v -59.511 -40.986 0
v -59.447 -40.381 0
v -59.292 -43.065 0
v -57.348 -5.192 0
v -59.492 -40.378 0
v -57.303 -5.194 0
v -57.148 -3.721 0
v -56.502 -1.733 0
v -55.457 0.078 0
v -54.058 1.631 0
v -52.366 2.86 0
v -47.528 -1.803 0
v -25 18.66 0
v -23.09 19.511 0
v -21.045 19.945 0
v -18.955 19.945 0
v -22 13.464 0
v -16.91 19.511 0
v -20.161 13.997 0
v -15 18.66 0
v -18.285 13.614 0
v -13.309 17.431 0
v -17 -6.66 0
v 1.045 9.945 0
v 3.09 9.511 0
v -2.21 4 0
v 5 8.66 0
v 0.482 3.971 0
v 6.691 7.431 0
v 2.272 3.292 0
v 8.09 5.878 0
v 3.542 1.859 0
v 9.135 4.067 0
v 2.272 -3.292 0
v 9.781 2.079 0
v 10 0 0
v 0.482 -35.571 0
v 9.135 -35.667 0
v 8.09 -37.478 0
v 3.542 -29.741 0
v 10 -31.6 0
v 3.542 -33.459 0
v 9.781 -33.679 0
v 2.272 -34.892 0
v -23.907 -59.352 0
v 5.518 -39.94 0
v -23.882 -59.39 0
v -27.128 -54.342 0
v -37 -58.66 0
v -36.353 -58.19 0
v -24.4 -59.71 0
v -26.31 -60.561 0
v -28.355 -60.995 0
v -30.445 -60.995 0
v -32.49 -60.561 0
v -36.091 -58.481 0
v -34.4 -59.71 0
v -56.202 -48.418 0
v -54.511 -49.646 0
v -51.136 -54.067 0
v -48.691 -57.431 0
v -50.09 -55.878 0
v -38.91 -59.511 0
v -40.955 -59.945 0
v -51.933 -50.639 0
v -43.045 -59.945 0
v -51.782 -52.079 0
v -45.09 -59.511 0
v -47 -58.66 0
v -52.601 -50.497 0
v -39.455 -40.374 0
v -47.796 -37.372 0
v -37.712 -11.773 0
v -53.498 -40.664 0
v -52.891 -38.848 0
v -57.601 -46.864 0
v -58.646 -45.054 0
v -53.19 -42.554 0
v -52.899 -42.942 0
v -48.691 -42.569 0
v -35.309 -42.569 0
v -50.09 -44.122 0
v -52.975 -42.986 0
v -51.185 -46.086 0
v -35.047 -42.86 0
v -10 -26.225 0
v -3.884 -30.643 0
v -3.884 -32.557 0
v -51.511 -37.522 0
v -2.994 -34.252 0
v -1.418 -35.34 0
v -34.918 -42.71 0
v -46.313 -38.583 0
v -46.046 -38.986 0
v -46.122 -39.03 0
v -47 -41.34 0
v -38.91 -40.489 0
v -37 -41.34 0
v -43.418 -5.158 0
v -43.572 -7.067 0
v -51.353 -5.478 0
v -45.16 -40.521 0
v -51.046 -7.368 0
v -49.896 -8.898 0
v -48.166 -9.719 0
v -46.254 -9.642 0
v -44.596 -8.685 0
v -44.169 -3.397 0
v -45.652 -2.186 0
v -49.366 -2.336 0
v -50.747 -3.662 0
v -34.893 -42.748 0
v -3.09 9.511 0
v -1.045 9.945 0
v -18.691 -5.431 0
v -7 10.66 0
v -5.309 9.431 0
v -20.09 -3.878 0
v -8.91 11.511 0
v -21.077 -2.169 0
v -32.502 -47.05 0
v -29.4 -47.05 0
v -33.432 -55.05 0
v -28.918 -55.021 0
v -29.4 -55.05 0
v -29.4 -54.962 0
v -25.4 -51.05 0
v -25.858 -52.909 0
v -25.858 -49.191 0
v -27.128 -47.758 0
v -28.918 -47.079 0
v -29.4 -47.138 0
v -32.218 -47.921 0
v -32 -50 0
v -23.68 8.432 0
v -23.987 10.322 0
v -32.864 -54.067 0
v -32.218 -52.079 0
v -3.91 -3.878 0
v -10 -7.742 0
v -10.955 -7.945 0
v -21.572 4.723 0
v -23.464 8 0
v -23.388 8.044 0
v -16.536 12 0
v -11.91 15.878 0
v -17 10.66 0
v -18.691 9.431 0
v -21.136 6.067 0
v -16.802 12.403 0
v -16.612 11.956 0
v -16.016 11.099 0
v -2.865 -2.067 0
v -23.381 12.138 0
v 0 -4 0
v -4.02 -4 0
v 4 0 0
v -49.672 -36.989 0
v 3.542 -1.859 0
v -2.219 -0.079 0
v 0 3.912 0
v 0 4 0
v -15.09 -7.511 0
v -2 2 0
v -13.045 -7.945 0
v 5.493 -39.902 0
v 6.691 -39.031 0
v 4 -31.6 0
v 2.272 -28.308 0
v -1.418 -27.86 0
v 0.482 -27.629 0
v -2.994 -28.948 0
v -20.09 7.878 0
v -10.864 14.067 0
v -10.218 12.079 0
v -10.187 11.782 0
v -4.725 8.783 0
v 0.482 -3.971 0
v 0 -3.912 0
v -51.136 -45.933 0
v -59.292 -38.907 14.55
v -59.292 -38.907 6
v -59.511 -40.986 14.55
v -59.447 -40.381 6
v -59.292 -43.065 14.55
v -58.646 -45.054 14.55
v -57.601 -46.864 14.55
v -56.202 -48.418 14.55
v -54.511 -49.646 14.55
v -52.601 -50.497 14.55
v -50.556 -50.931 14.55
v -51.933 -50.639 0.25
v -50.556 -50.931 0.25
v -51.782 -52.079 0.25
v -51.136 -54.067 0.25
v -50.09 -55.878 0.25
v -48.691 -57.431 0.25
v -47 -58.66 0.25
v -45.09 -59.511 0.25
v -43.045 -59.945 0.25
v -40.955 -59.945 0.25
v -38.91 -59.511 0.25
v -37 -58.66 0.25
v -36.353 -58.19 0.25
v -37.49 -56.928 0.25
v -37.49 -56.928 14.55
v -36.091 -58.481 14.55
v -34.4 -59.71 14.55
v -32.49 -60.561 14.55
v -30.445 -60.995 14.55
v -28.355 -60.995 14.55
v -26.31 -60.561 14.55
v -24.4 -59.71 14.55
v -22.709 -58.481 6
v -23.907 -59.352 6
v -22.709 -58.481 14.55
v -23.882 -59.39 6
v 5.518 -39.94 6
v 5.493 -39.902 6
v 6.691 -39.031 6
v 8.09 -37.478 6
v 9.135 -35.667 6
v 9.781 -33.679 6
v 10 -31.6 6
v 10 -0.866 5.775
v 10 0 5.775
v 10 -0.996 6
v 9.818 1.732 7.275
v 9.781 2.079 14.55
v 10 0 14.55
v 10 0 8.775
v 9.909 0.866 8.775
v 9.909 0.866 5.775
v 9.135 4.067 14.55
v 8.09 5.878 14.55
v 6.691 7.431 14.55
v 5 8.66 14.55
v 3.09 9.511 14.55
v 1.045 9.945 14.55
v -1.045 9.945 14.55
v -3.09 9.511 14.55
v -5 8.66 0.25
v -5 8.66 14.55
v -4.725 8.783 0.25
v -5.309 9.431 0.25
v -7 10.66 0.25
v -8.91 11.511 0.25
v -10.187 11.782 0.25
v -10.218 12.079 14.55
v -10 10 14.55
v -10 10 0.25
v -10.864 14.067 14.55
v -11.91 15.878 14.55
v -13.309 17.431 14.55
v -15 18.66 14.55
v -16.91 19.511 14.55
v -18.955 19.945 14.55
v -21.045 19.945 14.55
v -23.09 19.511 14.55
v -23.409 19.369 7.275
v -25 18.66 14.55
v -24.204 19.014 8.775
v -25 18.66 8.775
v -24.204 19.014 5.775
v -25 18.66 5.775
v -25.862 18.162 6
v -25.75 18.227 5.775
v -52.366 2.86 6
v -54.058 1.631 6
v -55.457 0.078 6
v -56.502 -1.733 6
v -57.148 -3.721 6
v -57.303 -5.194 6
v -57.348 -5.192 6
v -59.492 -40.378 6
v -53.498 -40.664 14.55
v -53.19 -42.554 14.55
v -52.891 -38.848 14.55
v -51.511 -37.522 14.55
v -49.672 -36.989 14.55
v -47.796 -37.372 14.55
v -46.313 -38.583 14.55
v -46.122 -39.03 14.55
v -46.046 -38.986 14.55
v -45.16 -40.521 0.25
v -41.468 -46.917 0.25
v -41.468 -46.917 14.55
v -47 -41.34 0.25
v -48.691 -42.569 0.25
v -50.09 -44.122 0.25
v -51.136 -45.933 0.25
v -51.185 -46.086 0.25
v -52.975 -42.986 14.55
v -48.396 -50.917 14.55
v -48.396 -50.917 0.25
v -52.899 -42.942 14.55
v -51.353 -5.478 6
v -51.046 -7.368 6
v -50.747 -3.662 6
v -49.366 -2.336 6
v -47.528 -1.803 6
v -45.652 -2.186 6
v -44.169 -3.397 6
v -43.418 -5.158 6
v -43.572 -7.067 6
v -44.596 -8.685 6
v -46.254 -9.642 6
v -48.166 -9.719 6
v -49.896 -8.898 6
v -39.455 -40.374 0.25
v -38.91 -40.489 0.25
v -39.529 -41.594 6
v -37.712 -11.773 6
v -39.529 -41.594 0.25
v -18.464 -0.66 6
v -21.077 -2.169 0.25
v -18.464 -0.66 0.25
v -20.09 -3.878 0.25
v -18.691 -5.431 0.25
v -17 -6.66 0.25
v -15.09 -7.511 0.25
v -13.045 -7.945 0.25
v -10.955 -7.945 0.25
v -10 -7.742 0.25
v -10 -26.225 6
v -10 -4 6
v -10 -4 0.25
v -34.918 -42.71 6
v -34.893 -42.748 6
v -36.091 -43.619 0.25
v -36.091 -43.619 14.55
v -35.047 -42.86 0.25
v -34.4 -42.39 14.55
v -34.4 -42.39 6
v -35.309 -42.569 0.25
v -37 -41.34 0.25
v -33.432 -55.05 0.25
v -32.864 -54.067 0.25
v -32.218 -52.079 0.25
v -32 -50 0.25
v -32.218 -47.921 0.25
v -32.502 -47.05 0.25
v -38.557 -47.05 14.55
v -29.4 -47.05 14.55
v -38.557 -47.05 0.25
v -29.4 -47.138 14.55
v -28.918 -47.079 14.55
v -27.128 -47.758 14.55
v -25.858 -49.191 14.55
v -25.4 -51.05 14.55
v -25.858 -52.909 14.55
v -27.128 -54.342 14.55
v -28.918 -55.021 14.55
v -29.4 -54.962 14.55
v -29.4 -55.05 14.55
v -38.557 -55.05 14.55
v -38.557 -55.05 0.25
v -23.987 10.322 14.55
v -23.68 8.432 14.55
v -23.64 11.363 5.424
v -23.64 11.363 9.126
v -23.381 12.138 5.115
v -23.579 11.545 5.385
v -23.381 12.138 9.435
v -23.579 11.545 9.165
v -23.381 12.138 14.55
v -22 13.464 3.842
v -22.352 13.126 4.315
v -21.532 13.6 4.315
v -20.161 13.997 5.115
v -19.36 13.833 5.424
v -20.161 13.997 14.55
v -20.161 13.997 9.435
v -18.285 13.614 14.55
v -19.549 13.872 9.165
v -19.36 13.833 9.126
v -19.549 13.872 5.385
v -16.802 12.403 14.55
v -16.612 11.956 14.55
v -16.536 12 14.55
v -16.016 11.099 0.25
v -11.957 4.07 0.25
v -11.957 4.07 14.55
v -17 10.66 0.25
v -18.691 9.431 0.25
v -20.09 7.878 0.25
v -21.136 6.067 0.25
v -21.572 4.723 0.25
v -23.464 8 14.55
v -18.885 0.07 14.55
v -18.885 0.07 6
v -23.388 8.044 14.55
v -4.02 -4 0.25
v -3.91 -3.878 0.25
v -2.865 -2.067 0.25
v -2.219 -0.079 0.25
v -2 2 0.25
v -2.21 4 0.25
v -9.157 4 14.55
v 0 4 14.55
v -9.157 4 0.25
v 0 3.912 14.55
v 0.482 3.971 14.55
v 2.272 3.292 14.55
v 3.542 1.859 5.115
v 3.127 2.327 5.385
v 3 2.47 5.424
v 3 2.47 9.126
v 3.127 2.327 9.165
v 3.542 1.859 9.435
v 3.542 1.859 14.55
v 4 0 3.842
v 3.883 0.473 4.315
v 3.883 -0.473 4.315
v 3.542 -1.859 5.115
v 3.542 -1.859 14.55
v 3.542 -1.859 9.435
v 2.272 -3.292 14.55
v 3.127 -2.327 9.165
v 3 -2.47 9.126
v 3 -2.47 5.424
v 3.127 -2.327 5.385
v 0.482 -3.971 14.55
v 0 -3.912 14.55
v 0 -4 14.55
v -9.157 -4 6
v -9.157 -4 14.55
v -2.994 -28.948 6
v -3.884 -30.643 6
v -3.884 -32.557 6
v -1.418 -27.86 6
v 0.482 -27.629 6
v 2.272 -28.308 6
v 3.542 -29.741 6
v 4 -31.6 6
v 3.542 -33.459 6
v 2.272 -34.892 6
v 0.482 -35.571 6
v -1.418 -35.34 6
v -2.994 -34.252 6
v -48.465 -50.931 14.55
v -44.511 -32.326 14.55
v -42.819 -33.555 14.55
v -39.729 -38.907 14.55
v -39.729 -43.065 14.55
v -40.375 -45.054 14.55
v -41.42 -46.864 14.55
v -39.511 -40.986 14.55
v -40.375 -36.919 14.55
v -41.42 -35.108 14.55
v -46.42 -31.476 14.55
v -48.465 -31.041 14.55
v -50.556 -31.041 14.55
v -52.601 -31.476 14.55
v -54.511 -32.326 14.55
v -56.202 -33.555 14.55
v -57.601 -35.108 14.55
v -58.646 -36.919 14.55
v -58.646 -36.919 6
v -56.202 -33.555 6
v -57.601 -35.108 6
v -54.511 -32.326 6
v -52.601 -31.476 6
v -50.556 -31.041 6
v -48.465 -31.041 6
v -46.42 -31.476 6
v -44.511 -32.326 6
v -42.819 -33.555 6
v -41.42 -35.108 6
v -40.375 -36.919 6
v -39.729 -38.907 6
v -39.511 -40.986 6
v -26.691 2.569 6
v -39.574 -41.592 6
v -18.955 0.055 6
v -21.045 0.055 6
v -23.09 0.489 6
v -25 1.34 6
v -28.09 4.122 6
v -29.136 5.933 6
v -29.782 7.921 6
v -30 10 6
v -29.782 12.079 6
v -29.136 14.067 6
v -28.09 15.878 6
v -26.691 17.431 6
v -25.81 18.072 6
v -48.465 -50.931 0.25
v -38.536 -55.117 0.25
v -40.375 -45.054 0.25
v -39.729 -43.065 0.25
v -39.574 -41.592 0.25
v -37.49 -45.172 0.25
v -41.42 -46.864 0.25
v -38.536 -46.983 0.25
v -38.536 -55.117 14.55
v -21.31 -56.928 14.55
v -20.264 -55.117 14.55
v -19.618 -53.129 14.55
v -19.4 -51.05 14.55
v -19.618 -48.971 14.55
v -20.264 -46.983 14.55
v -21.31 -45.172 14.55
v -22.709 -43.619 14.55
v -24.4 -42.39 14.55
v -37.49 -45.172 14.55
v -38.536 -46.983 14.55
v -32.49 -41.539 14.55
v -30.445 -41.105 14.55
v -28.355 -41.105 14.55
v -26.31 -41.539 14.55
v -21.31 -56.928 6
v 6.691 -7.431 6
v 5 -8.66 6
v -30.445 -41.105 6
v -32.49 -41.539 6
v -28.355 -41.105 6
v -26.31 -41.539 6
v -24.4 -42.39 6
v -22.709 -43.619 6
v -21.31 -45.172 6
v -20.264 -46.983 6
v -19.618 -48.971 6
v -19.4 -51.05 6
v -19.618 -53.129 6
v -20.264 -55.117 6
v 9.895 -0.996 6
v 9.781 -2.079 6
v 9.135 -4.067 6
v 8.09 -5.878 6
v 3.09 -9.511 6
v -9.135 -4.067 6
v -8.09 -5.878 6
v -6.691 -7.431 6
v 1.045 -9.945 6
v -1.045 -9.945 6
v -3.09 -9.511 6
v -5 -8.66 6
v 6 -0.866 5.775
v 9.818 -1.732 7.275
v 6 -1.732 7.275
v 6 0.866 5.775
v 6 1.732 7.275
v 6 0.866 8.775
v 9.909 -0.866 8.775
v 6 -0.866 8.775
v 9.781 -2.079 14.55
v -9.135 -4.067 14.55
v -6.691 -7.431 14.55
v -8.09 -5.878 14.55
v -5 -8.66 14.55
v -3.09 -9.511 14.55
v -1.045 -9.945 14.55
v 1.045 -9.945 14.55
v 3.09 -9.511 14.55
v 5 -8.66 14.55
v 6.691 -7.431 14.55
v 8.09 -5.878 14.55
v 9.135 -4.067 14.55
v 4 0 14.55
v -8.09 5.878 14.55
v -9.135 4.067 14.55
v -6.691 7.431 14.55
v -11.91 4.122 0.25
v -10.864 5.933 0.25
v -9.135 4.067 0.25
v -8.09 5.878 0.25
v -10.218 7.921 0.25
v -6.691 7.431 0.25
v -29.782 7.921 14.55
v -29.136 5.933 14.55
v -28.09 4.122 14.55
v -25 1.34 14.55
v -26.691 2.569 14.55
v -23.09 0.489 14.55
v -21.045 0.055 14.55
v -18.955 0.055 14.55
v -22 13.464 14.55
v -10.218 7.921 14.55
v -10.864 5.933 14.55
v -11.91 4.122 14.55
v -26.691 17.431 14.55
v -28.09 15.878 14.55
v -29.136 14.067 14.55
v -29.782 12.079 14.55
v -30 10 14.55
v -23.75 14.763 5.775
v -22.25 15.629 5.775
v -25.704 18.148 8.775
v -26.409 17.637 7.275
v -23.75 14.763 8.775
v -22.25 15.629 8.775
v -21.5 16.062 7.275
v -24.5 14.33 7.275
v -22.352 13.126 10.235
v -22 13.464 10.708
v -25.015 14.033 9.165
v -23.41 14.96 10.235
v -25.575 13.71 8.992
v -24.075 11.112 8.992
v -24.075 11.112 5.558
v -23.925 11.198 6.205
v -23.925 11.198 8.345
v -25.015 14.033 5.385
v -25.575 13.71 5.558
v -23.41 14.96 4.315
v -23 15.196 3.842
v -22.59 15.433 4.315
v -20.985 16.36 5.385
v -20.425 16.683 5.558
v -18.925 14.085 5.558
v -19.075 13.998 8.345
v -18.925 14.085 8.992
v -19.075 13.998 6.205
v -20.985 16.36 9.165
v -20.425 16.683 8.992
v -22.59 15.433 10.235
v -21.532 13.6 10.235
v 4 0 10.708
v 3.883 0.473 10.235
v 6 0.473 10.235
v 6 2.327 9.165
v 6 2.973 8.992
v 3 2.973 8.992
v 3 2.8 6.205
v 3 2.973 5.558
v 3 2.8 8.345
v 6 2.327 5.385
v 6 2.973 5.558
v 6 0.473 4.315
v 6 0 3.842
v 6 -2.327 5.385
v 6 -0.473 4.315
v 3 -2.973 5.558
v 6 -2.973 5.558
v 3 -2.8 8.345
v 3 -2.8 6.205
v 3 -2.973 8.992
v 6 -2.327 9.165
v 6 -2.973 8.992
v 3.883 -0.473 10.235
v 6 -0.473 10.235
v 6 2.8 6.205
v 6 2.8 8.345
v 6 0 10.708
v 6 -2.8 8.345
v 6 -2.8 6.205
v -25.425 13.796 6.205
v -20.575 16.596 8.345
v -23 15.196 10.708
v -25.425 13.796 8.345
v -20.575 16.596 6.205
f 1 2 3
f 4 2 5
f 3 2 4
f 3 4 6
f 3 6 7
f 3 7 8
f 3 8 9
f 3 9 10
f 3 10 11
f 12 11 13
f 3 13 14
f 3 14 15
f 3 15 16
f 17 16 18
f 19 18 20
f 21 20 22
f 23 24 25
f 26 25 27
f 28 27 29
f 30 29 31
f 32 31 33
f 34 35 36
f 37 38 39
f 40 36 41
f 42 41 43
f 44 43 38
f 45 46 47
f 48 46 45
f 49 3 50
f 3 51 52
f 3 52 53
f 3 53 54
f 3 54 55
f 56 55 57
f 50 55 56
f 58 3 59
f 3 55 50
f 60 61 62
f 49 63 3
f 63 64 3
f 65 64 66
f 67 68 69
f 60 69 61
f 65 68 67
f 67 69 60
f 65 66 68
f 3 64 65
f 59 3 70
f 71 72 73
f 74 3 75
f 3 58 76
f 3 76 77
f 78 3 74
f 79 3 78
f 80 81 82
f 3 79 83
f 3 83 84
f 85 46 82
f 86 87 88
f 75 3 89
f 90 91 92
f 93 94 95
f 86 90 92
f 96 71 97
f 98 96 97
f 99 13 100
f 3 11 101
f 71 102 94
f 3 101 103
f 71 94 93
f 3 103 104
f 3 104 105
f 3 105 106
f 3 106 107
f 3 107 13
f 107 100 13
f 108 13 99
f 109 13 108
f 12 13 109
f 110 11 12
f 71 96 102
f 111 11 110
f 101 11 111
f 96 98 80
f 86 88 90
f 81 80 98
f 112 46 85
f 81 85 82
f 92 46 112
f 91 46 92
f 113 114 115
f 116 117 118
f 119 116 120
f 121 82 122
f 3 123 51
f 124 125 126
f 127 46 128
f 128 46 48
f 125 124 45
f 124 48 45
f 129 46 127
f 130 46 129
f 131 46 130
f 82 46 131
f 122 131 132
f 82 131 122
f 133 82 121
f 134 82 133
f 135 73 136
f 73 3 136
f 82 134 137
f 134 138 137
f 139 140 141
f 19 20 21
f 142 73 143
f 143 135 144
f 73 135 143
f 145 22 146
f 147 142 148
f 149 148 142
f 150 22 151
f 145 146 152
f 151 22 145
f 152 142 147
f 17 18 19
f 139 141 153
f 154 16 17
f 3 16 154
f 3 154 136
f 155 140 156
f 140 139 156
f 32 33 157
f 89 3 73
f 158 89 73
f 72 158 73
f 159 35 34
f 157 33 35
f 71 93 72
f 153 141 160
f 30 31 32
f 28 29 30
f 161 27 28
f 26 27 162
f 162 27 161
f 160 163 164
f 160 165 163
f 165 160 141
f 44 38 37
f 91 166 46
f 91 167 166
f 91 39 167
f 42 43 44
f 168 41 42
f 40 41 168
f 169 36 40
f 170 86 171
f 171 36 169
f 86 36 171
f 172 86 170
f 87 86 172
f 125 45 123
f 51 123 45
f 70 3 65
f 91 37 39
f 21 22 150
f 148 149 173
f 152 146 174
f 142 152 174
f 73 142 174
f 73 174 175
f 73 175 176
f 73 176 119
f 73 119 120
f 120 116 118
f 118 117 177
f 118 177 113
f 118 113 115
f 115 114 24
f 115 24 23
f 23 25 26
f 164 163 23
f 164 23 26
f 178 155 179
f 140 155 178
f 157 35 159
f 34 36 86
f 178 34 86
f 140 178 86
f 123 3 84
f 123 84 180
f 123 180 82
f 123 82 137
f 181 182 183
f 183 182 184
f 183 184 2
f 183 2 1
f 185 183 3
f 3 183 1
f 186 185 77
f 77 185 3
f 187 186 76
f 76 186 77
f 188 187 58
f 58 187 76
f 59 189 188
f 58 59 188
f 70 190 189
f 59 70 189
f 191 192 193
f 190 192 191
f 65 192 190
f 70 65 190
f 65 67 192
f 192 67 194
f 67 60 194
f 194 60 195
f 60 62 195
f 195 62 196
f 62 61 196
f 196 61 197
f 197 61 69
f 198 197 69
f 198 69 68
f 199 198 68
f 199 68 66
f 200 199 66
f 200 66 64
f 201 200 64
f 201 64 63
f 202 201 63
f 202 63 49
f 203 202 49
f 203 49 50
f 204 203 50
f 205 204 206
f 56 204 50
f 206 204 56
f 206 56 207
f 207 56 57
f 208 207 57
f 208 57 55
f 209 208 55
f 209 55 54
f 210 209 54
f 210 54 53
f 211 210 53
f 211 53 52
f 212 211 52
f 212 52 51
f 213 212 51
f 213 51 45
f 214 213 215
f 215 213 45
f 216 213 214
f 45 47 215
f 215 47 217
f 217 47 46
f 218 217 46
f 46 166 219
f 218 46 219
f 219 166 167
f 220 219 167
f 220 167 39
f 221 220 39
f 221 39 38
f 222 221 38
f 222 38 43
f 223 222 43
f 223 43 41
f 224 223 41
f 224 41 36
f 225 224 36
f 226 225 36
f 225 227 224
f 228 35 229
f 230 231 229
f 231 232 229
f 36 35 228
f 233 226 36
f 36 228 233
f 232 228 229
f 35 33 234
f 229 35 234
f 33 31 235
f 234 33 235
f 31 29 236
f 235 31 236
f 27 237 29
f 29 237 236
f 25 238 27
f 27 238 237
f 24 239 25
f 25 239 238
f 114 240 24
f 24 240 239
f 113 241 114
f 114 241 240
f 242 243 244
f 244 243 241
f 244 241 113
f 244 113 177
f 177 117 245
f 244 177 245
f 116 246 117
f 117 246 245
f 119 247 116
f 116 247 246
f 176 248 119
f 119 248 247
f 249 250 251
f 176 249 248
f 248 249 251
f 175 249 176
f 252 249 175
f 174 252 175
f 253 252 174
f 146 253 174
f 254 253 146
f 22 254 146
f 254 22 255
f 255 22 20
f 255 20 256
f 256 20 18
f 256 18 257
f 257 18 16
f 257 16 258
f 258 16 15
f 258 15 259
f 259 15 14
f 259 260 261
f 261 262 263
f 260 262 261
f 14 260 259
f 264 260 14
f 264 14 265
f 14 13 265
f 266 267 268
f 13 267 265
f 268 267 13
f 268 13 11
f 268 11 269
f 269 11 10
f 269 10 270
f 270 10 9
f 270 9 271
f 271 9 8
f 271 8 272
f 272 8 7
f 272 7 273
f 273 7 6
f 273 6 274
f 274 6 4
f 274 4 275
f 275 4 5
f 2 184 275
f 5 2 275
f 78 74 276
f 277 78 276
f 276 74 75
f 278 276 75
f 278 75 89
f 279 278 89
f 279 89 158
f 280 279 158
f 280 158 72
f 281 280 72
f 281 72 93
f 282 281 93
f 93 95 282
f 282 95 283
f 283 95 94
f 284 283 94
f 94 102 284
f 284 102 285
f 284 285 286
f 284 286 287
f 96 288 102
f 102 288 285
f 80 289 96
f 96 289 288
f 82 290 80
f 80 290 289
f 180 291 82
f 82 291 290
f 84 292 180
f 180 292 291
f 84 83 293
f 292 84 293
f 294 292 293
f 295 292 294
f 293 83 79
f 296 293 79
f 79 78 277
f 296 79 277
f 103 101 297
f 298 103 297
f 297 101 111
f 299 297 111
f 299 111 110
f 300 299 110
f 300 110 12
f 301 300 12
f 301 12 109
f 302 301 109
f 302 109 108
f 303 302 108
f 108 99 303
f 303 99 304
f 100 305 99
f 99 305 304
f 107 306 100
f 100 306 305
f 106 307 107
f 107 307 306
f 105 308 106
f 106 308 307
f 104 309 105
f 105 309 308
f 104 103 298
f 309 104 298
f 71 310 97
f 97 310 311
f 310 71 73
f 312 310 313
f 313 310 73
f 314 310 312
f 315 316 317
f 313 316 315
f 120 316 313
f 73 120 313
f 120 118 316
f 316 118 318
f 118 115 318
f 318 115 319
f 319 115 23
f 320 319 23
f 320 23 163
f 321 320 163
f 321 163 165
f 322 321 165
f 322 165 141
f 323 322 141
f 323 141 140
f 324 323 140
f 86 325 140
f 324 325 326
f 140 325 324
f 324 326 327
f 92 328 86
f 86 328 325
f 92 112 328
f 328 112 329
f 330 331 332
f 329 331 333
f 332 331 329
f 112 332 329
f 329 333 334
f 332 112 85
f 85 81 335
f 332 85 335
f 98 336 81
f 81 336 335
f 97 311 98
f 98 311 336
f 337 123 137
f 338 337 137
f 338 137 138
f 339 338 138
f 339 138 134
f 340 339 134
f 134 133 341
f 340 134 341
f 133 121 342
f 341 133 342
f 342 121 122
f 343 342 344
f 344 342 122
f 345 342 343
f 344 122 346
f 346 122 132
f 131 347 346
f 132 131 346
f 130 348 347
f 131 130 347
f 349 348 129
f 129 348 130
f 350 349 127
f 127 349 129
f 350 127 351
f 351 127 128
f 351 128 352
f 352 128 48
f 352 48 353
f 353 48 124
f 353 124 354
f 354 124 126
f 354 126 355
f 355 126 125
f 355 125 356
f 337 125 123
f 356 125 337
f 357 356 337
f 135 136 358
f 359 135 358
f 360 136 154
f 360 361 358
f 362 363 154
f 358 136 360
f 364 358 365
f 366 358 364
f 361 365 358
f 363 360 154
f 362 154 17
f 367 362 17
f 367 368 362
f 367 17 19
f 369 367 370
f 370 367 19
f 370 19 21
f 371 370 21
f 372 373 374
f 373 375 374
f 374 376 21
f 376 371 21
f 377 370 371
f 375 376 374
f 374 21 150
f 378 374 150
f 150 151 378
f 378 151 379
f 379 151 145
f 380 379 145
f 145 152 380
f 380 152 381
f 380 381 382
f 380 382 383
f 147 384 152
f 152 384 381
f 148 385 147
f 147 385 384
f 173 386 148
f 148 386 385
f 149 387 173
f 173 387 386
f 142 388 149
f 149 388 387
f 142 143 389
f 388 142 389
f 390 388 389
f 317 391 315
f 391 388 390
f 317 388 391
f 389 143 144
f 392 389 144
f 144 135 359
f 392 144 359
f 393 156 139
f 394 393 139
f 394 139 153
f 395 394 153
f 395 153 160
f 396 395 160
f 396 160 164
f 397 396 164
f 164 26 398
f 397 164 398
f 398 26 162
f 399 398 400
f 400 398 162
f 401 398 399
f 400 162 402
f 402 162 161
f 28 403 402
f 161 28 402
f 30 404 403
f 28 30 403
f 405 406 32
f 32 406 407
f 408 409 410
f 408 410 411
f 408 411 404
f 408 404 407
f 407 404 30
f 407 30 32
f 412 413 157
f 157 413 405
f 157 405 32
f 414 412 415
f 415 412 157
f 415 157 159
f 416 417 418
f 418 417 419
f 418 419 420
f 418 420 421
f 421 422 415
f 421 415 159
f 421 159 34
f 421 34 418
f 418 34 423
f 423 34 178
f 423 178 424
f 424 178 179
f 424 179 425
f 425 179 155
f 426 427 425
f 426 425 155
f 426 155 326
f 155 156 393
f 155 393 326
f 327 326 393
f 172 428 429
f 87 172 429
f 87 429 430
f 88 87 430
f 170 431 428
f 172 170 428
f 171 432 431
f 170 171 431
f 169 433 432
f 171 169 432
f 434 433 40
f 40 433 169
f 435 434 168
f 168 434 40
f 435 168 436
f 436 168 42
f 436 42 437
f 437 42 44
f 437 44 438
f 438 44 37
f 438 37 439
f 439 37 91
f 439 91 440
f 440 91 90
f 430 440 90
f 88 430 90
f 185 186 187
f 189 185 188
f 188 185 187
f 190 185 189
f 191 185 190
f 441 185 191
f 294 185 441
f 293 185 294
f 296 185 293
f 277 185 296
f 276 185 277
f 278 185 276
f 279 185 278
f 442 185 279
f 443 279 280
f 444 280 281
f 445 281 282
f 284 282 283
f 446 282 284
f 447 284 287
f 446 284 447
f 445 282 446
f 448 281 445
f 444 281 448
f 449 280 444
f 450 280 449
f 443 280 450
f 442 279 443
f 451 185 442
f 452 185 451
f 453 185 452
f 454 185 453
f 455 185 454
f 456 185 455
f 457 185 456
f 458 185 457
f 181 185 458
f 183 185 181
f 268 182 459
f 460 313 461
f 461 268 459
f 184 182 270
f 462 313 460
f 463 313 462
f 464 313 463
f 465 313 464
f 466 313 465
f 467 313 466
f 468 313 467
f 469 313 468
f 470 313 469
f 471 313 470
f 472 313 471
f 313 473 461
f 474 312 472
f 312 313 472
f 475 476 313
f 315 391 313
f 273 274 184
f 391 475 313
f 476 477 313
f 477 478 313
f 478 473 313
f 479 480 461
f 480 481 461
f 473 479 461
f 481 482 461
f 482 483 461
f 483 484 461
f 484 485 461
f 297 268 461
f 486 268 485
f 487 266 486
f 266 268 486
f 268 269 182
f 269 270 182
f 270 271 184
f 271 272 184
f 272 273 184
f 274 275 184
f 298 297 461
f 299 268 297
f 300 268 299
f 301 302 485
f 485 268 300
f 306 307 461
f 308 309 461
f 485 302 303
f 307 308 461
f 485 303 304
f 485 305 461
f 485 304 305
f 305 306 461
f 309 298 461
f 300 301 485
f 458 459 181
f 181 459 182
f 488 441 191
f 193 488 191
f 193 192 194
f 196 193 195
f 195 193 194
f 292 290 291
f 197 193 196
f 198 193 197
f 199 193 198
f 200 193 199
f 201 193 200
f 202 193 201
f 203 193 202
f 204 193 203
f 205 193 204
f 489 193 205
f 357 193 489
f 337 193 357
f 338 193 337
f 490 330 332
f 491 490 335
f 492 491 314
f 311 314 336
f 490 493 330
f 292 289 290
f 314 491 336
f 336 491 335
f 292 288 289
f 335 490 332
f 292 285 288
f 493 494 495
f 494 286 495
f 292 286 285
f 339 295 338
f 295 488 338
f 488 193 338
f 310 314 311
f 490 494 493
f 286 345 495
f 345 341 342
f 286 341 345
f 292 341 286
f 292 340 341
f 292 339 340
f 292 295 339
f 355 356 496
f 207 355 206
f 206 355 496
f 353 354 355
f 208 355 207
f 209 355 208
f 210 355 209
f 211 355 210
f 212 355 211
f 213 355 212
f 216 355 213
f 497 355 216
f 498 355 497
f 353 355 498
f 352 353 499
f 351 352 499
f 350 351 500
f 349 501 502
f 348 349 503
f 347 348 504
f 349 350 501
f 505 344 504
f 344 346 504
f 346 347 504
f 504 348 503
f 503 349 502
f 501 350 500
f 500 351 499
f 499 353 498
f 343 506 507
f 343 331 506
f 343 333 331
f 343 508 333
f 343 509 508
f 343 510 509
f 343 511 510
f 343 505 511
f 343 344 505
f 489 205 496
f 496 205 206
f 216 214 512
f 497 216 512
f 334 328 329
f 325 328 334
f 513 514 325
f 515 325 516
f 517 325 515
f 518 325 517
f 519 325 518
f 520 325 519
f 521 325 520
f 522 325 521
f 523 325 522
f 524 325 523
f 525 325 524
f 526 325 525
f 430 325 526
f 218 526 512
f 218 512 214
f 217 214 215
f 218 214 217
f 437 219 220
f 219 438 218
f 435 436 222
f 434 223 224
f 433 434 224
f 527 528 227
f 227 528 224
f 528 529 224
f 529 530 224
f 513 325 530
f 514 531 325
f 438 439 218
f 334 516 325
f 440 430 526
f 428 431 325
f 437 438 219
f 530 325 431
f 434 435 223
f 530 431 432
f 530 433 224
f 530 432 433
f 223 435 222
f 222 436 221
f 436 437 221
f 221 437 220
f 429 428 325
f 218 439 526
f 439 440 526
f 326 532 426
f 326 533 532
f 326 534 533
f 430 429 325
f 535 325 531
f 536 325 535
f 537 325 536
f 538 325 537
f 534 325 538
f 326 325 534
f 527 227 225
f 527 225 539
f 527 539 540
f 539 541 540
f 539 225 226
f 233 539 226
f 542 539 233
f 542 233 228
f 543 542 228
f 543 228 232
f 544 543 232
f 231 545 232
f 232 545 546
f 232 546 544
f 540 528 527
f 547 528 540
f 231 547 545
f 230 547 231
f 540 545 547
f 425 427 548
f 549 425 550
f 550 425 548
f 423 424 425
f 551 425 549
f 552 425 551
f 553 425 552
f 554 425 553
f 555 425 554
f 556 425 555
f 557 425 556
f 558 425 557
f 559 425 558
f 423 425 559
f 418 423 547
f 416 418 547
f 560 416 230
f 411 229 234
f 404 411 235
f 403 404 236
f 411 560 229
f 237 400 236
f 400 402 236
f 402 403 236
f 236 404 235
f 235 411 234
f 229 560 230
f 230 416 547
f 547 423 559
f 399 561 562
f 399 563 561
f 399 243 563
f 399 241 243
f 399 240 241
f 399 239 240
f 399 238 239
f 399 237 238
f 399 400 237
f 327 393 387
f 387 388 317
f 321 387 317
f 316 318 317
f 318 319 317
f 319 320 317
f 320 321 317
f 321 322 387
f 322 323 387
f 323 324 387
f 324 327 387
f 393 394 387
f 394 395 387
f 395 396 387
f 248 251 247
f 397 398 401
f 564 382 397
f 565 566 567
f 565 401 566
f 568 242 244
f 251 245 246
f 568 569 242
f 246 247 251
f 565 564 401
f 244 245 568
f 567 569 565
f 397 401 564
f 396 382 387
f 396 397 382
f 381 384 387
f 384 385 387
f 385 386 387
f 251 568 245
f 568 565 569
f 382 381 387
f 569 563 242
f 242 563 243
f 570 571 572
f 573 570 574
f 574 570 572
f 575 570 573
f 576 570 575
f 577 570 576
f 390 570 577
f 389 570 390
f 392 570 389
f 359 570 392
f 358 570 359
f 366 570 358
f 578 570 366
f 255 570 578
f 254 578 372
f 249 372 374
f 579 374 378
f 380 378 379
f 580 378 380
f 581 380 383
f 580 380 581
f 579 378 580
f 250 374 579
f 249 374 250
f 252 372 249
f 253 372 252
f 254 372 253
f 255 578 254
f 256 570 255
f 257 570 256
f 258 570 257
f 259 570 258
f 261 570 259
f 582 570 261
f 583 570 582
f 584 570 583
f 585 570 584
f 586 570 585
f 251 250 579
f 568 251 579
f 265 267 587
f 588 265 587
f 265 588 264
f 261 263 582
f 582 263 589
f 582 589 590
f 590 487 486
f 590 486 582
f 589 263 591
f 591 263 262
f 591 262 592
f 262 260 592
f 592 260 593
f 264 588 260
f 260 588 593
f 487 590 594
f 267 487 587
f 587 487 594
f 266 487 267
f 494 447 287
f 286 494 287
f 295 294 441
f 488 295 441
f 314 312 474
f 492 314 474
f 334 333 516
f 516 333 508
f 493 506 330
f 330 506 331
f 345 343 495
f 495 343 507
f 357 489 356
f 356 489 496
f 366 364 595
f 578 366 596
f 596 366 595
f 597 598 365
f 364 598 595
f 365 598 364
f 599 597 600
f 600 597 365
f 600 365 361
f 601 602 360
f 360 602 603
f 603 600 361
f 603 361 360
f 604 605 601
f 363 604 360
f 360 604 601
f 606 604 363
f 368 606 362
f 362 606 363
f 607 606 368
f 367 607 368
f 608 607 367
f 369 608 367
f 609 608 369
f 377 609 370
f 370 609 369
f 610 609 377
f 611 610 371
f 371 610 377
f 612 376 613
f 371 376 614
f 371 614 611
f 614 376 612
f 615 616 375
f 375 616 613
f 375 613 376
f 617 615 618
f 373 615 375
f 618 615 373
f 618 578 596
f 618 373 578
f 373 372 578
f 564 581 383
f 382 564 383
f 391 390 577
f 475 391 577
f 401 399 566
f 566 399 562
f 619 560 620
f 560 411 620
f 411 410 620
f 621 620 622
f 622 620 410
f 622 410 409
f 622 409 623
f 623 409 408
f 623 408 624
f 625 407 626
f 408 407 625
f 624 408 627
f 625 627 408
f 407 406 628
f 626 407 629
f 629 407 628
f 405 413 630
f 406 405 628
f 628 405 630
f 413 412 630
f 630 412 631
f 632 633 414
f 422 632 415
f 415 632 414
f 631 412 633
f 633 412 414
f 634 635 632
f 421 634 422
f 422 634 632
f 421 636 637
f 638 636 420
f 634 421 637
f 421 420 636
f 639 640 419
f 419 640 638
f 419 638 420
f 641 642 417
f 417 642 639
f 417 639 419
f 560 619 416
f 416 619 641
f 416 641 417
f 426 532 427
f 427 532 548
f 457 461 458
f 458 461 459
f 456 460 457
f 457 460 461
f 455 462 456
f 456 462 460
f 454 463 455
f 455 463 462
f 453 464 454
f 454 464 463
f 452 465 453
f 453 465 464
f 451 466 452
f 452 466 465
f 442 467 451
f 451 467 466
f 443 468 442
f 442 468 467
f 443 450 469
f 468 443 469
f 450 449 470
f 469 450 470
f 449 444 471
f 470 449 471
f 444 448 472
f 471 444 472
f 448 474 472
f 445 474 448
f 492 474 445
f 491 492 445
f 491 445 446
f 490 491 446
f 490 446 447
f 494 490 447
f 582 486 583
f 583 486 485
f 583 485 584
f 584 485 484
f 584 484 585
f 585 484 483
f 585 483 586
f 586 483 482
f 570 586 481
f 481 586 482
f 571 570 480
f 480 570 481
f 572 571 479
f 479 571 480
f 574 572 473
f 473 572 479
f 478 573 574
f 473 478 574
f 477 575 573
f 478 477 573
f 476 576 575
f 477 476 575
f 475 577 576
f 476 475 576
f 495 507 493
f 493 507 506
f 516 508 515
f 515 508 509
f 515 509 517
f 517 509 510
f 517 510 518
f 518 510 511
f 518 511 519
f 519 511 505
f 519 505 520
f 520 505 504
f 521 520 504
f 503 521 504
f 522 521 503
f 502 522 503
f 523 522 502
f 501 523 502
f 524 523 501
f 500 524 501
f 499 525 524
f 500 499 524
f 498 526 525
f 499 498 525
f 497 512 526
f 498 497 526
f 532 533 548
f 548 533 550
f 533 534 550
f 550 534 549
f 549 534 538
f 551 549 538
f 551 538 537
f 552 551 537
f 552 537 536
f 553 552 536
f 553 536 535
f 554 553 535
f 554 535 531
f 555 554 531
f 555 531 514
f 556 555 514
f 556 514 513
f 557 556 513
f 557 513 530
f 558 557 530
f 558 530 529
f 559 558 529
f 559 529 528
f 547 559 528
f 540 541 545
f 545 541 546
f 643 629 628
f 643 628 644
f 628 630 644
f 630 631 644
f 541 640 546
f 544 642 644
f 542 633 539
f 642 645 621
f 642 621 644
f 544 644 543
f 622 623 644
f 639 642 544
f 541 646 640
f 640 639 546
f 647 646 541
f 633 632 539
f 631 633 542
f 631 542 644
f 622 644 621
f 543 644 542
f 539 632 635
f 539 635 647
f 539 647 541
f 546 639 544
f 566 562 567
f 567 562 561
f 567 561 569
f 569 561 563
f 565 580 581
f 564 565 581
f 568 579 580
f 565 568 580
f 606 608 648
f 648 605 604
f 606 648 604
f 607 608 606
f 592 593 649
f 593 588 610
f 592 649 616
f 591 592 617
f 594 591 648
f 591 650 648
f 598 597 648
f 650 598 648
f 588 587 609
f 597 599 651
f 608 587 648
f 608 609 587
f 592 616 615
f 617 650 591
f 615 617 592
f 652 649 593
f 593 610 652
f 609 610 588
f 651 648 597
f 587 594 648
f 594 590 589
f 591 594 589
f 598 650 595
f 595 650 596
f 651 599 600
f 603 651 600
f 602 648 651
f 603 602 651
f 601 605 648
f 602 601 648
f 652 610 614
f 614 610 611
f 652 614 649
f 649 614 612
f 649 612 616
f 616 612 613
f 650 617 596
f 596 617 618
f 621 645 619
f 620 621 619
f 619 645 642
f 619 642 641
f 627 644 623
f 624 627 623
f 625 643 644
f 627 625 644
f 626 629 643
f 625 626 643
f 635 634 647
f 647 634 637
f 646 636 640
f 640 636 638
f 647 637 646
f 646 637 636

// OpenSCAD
// Y bearing Idler bracket(s) with belt tensioner
// Michel Pollet <buserror@gmail.com>
// 
// inspired by http://www.thingiverse.com/thing:12299
// inspired by http://www.thingiverse.com/thing:12148

E = 0.01;
bar_width = 20;
bar_thickness = 6;
bushing_diameter = 20;
top_bar_to_bearing_distance = 31.6;
m8_diameter = 8;

double_bearings_and_washer = 17.1;

total_thickness = bar_thickness + (double_bearings_and_washer/2);

// don't change these
bar_x_offset = 3.4 + 26;
bar_y_offset = 30.05+21;

bottom_angle = atan((bar_y_offset-top_bar_to_bearing_distance) / bar_x_offset);
bottom_bar_length = bar_x_offset / cos(bottom_angle);
echo("bottom angle", bottom_angle, bottom_bar_length);

spikey_first_layer_support = 1;
use_brass_insert_for_tension = 0;
use_m3_nut_for_tension = 1;

brass_insert_diameter = 4;
m3_diameter = 3;
m3_nut_diameter = 5.6;
m3_nut_height = 2.5;

ybract();

translate([-20,10,0]) rotate([0,0,90+30])
	mirror([0,1,0])
		ybract();

if (spikey_first_layer_support) {
	translate([-12, 2, 0])
		cylinder(r=10, h = 0.25);
	translate([-42, -50, 0])
		cylinder(r=10, h = 0.25);
}

module ybract() difference() {
	union() {
	  // top circle
		cylinder(r=bushing_diameter/2, h=total_thickness);
	
		// bottom circle
		translate([-bar_x_offset, -bar_y_offset, 0])
			cylinder(r=bushing_diameter/2, h=total_thickness);
	
		// middle circle
		translate([0,  - top_bar_to_bearing_distance, 0])
			cylinder(r=bushing_diameter/2, h=bar_thickness);
	
		// bar between the circles
		translate([-bar_width/2,-top_bar_to_bearing_distance, 0])
			cube([bar_width, top_bar_to_bearing_distance, bar_thickness]);
	
	//	translate([-(bar_x_offset-(m8_diameter/2)*cos(bottom_angle)), 
	//			-(bar_y_offset - (m8_diameter/2)*sin(bottom_angle)), 0])
		translate([-bar_x_offset, -bar_y_offset, 0])
			rotate(a=[0,0,bottom_angle])
		translate([0,-bar_width/2,0])
			cube([bottom_bar_length, bar_width, bar_thickness]); 
	}

	translate([0,0,-E])
		cylinder(r=m8_diameter/2, h=total_thickness + (2*E));
	translate([0,0, total_thickness / 2])
		rotate([-90,0,-90]) {
			if (use_brass_insert_for_tension == 1)
				polyhole(d = brass_insert_diameter, h = 12);
			if (use_m3_nut_for_tension == 1) {
				polyhole(d = m3_diameter, h = 12);
				rotate([0,0,30]) 
					translate([0,0,(m8_diameter/2)-1])
					nut(d = m3_nut_diameter, h = m3_nut_height + 0.5);
			}
		}
	translate([-bar_x_offset,-bar_y_offset,-E])
		cylinder(r=m8_diameter/2, h=total_thickness + (2*E));
	translate([0,0 - top_bar_to_bearing_distance, -E])
		cylinder(r=m8_diameter/2, h=total_thickness + (2*E));
	
	// make slots
	translate([-bushing_diameter, - m8_diameter/2, -E])
		cube([bushing_diameter, m8_diameter, total_thickness + (2*E)]);
	
	translate([-bar_x_offset - bushing_diameter, -bar_y_offset - m8_diameter/2, -E])
		cube([bushing_diameter, m8_diameter, total_thickness + (2*E)]);

}



module nut(d,h,horizontal=true){
cornerdiameter =  (d / 2) / cos (180 / 6);
cylinder(h = h, r = cornerdiameter, $fn = 6);
if(horizontal){
for(i = [1:6]){
	rotate([0,0,60*i]) translate([-cornerdiameter-0.2,0,0]) rotate([0,0,-45]) cube(size = [2,2,h]);
}}
}

// Based on nophead research
module polyhole(d,h) {
    n = max(round(2 * d),3);
    rotate([0,0,180])
        cylinder(h = h, r = (d / 2) / cos (180 / n), $fn = n);
}

module roundcorner(diameter){
	difference(){
		cube(size = [diameter,diameter,99], center = false);
		translate(v = [diameter, diameter, 0]) cylinder(h = 100, r=diameter, center=true);
	}
}
